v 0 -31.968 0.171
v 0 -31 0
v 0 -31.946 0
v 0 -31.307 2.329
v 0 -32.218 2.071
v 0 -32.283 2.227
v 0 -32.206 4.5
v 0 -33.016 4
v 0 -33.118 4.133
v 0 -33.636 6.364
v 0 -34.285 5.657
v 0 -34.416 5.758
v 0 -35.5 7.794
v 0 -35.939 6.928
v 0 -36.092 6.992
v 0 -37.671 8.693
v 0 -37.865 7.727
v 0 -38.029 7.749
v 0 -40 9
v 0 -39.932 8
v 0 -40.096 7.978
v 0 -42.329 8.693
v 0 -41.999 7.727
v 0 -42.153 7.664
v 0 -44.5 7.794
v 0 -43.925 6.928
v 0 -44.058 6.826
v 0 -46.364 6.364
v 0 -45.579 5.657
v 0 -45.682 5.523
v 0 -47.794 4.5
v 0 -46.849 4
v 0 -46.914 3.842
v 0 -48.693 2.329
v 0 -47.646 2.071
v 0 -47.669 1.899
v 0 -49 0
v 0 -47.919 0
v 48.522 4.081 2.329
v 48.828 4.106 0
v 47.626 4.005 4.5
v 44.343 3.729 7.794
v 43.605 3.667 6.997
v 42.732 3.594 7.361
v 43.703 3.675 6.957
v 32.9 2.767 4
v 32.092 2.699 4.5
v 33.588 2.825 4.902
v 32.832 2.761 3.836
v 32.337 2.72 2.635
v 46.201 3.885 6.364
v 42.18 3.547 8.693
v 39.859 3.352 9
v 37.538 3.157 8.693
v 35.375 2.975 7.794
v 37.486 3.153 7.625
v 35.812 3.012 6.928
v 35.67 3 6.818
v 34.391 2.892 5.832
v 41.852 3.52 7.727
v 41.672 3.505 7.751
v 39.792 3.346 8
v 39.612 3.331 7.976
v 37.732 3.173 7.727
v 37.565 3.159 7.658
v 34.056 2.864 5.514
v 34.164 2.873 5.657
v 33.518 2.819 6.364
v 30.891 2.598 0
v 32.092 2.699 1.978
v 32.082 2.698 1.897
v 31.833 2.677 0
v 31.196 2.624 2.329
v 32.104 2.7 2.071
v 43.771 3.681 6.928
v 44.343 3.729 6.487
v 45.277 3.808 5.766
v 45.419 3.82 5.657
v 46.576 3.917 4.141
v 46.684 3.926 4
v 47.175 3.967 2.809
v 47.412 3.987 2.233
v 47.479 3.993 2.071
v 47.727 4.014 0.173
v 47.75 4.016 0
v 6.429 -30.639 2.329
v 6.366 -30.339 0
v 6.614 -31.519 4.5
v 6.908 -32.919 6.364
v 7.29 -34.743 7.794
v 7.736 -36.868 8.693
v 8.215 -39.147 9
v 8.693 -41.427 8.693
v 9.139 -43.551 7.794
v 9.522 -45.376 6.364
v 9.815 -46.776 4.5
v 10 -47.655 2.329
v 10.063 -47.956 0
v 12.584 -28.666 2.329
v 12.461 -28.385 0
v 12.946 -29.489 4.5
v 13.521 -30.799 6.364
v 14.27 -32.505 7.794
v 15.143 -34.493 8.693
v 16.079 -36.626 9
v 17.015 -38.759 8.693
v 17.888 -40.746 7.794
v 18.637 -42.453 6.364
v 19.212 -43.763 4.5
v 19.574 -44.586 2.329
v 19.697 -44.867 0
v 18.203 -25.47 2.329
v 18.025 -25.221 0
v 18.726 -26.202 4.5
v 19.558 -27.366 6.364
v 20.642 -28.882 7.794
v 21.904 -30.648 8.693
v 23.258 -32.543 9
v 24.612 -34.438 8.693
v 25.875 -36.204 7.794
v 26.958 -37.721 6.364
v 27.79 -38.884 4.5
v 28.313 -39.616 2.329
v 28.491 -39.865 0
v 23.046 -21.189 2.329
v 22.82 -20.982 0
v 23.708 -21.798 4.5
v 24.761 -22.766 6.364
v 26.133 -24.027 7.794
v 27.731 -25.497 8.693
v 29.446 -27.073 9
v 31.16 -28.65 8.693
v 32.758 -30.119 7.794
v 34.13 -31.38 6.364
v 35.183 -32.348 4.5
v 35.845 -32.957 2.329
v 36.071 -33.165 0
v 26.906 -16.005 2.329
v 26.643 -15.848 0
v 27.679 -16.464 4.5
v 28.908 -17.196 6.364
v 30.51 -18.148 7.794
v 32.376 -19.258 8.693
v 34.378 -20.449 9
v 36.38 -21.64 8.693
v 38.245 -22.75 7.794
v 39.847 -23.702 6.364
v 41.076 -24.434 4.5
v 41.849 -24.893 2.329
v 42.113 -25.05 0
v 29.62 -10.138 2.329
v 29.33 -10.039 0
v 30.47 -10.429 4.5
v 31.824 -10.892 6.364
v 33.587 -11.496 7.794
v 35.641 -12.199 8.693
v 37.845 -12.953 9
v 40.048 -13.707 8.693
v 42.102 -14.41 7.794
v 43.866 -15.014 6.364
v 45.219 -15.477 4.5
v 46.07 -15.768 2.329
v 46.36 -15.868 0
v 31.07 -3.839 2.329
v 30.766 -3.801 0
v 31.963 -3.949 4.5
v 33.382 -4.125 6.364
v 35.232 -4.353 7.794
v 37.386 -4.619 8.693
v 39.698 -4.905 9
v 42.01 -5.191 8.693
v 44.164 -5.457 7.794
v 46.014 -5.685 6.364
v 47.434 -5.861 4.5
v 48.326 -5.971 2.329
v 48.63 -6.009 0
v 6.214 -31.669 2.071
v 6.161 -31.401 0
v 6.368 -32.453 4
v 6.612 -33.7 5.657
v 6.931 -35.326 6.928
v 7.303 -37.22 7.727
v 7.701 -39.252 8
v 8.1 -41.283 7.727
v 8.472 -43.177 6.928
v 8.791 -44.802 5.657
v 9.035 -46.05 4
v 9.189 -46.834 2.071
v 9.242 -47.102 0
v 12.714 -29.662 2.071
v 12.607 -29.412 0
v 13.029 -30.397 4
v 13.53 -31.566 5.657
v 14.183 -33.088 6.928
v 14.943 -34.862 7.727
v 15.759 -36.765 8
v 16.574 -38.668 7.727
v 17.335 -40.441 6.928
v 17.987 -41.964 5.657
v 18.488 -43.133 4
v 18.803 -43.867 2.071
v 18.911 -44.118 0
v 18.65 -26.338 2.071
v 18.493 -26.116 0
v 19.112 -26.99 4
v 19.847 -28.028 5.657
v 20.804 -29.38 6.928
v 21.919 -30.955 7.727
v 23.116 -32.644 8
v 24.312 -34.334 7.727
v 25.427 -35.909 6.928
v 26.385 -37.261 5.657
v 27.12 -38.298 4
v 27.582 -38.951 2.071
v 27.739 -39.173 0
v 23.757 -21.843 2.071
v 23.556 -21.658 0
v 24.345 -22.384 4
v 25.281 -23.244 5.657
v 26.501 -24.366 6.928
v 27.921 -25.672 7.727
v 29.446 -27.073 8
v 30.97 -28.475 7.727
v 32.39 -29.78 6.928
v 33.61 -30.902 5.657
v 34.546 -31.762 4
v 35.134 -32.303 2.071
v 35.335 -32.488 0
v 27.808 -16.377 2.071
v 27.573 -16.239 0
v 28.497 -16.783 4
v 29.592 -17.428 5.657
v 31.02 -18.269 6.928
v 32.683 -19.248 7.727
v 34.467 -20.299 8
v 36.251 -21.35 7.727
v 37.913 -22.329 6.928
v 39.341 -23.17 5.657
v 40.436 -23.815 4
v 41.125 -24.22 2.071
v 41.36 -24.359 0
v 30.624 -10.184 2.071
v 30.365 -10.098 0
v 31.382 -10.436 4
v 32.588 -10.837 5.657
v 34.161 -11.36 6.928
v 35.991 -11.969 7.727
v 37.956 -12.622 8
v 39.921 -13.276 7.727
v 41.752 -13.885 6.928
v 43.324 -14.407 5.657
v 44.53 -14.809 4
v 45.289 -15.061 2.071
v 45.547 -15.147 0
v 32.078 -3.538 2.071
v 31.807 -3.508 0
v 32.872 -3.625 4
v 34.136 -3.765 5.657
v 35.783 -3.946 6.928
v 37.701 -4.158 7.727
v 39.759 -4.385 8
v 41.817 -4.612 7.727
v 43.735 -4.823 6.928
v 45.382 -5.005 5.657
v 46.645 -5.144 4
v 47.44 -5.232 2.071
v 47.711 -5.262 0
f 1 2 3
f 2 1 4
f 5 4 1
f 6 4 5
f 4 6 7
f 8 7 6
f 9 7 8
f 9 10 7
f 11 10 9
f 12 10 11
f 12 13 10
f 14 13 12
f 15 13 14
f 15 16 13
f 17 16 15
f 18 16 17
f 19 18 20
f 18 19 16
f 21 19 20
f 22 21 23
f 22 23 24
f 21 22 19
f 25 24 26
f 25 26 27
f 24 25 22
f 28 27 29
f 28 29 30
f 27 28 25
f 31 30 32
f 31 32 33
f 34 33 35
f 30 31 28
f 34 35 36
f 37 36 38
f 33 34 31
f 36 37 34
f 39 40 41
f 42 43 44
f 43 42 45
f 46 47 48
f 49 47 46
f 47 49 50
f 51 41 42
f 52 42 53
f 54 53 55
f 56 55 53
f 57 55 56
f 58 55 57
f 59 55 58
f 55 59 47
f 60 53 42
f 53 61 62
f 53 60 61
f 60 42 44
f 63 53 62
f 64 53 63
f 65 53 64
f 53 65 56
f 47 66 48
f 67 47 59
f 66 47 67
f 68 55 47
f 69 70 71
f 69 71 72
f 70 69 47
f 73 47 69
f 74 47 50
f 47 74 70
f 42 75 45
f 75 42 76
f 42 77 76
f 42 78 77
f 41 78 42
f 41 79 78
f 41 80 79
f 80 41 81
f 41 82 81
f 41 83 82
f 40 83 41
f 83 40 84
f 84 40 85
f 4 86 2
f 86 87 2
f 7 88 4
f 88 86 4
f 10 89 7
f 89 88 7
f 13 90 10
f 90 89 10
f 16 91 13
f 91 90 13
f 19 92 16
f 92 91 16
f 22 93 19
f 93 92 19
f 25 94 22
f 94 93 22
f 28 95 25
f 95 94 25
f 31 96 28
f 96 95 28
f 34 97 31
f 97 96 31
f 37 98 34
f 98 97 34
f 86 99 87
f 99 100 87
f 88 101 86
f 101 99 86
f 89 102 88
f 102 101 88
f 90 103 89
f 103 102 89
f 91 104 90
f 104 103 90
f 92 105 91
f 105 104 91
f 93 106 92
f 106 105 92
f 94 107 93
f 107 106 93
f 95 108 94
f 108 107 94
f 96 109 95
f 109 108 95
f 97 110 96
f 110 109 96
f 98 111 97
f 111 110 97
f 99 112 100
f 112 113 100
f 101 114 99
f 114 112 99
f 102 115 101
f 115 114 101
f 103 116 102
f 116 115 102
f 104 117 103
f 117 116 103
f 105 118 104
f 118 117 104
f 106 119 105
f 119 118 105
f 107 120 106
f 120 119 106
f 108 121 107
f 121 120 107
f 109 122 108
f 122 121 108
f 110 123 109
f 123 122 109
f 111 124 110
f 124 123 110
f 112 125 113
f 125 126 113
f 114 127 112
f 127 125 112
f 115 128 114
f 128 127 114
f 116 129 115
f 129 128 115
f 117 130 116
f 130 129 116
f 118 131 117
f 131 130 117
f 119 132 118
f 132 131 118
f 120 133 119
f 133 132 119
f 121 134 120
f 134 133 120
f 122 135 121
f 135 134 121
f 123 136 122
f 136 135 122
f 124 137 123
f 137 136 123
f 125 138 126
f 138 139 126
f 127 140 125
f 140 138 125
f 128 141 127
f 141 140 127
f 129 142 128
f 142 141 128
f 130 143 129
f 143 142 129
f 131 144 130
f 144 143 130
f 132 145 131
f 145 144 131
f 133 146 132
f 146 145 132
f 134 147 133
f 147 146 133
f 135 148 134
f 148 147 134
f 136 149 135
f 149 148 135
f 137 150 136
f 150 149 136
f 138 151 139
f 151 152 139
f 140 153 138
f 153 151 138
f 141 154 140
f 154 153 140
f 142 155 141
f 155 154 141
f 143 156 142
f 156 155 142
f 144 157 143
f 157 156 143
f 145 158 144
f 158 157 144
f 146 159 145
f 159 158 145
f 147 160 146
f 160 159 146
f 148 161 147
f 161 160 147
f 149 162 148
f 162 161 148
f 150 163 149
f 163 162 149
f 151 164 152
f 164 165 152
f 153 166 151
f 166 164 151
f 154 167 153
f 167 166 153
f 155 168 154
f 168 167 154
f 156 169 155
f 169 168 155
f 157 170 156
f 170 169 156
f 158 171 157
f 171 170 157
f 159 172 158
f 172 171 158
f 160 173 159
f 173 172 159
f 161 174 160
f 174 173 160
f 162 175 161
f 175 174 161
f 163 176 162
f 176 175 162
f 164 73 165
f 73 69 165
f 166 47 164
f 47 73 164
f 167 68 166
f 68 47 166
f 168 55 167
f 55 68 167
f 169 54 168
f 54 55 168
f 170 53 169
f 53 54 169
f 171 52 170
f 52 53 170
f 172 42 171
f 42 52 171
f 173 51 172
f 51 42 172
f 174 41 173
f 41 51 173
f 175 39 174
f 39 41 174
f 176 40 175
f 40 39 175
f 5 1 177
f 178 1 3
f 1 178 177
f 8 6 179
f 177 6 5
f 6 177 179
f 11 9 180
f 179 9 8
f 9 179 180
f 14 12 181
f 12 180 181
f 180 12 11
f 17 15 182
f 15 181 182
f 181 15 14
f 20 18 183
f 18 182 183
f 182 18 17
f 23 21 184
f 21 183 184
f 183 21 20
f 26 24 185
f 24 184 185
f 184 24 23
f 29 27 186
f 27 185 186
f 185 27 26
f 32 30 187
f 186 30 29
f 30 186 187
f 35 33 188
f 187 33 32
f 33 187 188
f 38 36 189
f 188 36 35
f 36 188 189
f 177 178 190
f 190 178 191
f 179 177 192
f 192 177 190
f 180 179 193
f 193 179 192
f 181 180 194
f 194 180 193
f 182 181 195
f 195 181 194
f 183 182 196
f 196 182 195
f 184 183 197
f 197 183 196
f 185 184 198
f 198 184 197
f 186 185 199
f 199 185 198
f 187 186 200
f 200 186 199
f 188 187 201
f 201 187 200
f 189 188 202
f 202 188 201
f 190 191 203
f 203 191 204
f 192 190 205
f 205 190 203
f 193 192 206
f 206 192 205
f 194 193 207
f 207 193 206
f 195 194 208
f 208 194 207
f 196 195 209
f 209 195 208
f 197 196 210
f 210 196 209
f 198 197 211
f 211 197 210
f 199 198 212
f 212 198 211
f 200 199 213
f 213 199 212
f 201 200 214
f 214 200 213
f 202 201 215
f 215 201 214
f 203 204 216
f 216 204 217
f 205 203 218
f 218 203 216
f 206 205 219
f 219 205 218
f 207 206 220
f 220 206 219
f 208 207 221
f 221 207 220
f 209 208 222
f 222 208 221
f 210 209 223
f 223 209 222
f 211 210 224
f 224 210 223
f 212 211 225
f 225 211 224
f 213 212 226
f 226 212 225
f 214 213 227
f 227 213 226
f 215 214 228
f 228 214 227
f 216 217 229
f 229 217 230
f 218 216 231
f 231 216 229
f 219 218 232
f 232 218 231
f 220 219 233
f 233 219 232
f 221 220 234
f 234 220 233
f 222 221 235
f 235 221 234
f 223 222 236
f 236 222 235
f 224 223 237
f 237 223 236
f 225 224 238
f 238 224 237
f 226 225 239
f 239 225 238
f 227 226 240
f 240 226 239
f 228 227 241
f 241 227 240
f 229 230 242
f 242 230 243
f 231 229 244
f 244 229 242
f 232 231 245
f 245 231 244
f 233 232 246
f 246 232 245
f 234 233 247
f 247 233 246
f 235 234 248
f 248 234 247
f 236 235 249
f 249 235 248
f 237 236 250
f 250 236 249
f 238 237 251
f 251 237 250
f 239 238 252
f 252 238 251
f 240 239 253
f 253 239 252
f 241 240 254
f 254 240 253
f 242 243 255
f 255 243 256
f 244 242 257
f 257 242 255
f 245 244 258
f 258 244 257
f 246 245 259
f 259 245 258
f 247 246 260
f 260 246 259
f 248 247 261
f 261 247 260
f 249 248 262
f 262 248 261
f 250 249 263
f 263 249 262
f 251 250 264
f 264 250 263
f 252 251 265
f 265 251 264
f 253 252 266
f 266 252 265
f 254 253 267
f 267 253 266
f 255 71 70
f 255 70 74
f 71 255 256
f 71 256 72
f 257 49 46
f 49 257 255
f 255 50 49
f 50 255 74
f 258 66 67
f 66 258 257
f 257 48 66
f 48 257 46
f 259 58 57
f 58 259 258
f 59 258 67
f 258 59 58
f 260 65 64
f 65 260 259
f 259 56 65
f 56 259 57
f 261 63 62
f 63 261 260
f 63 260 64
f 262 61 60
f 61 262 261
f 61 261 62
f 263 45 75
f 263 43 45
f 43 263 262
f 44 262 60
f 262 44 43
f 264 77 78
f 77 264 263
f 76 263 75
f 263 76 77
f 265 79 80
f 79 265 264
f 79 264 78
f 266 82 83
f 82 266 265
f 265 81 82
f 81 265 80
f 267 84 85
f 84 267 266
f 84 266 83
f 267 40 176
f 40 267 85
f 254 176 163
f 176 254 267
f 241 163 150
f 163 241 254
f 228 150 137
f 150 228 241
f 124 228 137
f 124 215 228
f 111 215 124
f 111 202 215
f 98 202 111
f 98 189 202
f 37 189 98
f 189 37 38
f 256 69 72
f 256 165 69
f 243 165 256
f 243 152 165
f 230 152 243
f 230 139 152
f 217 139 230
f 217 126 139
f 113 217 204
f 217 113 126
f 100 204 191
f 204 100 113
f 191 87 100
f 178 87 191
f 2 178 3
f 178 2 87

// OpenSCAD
// file: ../build_environments.scad
// build_environments.scad: modules to build level sections
//

module pool(diameter=10.0, wall_height=2.0, step_width=3.0, connections=[])
{
    difference() {
        union() {
        difference() {
            cylinder(h=0.5,r1=diameter+step_width,r2=diameter+step_width,$fn=48);
            translate([0,0,-0.1])
                cylinder(h=0.7,r1=diameter,r2=diameter,$fn=48);
        }
        difference() {
            cylinder(h=wall_height,r1=diameter+step_width+1.0,r2=diameter+step_width+1.0,$fn=48);
            translate([0,0,-0.1])
                cylinder(h=wall_height+0.2,r1=diameter+step_width,r2=diameter+step_width,$fn=48);
        }
        }
    
        for (c = connections)
        {
            rotate([0,90,0]) {
                angle = atan2(c[1],c[0]);
                rotate([-angle,0,0]) {
                    cylinder(h=diameter+5.0,r1=c[2],r2=c[2],$fn=48);
                }
            }
        }
    }
}

module straight(length=10.0, width=2.0, dy1=0.0, dy2=0.0, dz=0.0)
{
    dims = [0, 0, 0, 0, 0, (dz/length)];
    matrix = [
        [ 1, dims[0], dims[1], 0 ],
        [ dims[2], 1, dims[4], 0 ],
        [ dims[5], dims[3], 1, 0 ],
        [ 0, 0, 0, 1 ]
    ];
    multmatrix(matrix)
    difference() {
        translate([dy1,0,0])
        union() {
            rotate([0,90,0]) {
                difference() {
                    cylinder(h=(length-dy1-dy2),r1=width+1.0,r2=width+1.0,$fn=24);
                    translate([0,0,-0.1])
                        cylinder(h=(length-dy1-dy2+0.2),r1=width,r2=width,$fn=24);
                }
                difference() {
                    cylinder(h=1.0,r1=width+2.0,r2=width+2.0,$fn=24);
                    translate([0,0,-0.1])
                        cylinder(h=1.2,r1=width,r2=width,$fn=24);
                }
                translate([0,0,(length-dy1-dy2)-1.0]) {
                    difference() {
                        cylinder(h=1.0,r1=width+2.0,r2=width+2.0,$fn=24);
                        translate([0,0,-0.1])
                            cylinder(h=1.2,r1=width,r2=width,$fn=24);
                    }
                }
            }
        }
        translate([0,0,-(2*width+4.0)/2])
            cube([3*length,3*length,2*width+4.0],center=true);
    }
}

module curve(p0=[0,0], center=[0,0], dir=1, angle=0.0, width=2.0)
{
    radius = sqrt((p0[0]-center[0])*(p0[0]-center[0]) + (p0[1]-center[1])*(p0[1]-center[1]));
    if (dir == 0) {
        difference() {
            rotate([0,0,-90])
            difference() {
                rotate_extrude(angle = angle, convexity = 10, $fn=32)
                    translate([radius, 0, 0])
                        circle(r = width+1.0,$fn=24);
                rotate([0,0,-1.0])
                    rotate_extrude(angle = angle+2.0, convexity = 10, $fn=32)
                        translate([radius, 0, 0])
                            circle(r = width,$fn=24);
            }
            translate([0,0,-(2*width+4.0)/2])
                cube([5*radius,5*radius,2*width+4.0],center=true);
        }
    }
    else {
        difference() {
            rotate([0,0,90])
            difference() {
                rotate_extrude(angle = -angle, convexity = 10, $fn=32)
                    translate([radius, 0, 0])
                        circle(r = width+1.0,$fn=24);
                rotate([0,0,1.0])
                    rotate_extrude(angle = -angle-2.0, convexity = 10, $fn=32)
                        translate([radius, 0, 0])
                            circle(r = width,$fn=24);
            }
            translate([0,0,-(2*width+4.0)/2])
                cube([5*radius,5*radius,2*width+4.0],center=true);
        }
    }

}

// test pool
//pool(diameter=12.0000, wall_height=3.0000, step_width=3.0000, connections=[[0.0000,-26.0000,2.0000], [23.6074,0.0000,2.0000]]);

// test straight, slope
//straight(length=26.0000, width=2.0000, dy1=11.8322, dy2=6.7082, dz=0.0000);
//straight(length=29.1549, width=12.0000, dy1=0.0000, dy2=0.0000, dz=-15.0000);

// test curve
//curve(p0=[23.6074, 0.0000], center=[23.6074, 5.0000], dir=0, angle=60.1011, width=2.0000);
//curve(p0=[33.6426, 12.4219], center=[37.9771, 9.9295], dir=1, angle=120.4627, width=2.0000);
// main file
use <../build_environments.scad>;
curve(p0=[122.6477, 173.5947], center=[84.9559, 186.9859], dir=0, angle=94.8072, width=8.0000);
